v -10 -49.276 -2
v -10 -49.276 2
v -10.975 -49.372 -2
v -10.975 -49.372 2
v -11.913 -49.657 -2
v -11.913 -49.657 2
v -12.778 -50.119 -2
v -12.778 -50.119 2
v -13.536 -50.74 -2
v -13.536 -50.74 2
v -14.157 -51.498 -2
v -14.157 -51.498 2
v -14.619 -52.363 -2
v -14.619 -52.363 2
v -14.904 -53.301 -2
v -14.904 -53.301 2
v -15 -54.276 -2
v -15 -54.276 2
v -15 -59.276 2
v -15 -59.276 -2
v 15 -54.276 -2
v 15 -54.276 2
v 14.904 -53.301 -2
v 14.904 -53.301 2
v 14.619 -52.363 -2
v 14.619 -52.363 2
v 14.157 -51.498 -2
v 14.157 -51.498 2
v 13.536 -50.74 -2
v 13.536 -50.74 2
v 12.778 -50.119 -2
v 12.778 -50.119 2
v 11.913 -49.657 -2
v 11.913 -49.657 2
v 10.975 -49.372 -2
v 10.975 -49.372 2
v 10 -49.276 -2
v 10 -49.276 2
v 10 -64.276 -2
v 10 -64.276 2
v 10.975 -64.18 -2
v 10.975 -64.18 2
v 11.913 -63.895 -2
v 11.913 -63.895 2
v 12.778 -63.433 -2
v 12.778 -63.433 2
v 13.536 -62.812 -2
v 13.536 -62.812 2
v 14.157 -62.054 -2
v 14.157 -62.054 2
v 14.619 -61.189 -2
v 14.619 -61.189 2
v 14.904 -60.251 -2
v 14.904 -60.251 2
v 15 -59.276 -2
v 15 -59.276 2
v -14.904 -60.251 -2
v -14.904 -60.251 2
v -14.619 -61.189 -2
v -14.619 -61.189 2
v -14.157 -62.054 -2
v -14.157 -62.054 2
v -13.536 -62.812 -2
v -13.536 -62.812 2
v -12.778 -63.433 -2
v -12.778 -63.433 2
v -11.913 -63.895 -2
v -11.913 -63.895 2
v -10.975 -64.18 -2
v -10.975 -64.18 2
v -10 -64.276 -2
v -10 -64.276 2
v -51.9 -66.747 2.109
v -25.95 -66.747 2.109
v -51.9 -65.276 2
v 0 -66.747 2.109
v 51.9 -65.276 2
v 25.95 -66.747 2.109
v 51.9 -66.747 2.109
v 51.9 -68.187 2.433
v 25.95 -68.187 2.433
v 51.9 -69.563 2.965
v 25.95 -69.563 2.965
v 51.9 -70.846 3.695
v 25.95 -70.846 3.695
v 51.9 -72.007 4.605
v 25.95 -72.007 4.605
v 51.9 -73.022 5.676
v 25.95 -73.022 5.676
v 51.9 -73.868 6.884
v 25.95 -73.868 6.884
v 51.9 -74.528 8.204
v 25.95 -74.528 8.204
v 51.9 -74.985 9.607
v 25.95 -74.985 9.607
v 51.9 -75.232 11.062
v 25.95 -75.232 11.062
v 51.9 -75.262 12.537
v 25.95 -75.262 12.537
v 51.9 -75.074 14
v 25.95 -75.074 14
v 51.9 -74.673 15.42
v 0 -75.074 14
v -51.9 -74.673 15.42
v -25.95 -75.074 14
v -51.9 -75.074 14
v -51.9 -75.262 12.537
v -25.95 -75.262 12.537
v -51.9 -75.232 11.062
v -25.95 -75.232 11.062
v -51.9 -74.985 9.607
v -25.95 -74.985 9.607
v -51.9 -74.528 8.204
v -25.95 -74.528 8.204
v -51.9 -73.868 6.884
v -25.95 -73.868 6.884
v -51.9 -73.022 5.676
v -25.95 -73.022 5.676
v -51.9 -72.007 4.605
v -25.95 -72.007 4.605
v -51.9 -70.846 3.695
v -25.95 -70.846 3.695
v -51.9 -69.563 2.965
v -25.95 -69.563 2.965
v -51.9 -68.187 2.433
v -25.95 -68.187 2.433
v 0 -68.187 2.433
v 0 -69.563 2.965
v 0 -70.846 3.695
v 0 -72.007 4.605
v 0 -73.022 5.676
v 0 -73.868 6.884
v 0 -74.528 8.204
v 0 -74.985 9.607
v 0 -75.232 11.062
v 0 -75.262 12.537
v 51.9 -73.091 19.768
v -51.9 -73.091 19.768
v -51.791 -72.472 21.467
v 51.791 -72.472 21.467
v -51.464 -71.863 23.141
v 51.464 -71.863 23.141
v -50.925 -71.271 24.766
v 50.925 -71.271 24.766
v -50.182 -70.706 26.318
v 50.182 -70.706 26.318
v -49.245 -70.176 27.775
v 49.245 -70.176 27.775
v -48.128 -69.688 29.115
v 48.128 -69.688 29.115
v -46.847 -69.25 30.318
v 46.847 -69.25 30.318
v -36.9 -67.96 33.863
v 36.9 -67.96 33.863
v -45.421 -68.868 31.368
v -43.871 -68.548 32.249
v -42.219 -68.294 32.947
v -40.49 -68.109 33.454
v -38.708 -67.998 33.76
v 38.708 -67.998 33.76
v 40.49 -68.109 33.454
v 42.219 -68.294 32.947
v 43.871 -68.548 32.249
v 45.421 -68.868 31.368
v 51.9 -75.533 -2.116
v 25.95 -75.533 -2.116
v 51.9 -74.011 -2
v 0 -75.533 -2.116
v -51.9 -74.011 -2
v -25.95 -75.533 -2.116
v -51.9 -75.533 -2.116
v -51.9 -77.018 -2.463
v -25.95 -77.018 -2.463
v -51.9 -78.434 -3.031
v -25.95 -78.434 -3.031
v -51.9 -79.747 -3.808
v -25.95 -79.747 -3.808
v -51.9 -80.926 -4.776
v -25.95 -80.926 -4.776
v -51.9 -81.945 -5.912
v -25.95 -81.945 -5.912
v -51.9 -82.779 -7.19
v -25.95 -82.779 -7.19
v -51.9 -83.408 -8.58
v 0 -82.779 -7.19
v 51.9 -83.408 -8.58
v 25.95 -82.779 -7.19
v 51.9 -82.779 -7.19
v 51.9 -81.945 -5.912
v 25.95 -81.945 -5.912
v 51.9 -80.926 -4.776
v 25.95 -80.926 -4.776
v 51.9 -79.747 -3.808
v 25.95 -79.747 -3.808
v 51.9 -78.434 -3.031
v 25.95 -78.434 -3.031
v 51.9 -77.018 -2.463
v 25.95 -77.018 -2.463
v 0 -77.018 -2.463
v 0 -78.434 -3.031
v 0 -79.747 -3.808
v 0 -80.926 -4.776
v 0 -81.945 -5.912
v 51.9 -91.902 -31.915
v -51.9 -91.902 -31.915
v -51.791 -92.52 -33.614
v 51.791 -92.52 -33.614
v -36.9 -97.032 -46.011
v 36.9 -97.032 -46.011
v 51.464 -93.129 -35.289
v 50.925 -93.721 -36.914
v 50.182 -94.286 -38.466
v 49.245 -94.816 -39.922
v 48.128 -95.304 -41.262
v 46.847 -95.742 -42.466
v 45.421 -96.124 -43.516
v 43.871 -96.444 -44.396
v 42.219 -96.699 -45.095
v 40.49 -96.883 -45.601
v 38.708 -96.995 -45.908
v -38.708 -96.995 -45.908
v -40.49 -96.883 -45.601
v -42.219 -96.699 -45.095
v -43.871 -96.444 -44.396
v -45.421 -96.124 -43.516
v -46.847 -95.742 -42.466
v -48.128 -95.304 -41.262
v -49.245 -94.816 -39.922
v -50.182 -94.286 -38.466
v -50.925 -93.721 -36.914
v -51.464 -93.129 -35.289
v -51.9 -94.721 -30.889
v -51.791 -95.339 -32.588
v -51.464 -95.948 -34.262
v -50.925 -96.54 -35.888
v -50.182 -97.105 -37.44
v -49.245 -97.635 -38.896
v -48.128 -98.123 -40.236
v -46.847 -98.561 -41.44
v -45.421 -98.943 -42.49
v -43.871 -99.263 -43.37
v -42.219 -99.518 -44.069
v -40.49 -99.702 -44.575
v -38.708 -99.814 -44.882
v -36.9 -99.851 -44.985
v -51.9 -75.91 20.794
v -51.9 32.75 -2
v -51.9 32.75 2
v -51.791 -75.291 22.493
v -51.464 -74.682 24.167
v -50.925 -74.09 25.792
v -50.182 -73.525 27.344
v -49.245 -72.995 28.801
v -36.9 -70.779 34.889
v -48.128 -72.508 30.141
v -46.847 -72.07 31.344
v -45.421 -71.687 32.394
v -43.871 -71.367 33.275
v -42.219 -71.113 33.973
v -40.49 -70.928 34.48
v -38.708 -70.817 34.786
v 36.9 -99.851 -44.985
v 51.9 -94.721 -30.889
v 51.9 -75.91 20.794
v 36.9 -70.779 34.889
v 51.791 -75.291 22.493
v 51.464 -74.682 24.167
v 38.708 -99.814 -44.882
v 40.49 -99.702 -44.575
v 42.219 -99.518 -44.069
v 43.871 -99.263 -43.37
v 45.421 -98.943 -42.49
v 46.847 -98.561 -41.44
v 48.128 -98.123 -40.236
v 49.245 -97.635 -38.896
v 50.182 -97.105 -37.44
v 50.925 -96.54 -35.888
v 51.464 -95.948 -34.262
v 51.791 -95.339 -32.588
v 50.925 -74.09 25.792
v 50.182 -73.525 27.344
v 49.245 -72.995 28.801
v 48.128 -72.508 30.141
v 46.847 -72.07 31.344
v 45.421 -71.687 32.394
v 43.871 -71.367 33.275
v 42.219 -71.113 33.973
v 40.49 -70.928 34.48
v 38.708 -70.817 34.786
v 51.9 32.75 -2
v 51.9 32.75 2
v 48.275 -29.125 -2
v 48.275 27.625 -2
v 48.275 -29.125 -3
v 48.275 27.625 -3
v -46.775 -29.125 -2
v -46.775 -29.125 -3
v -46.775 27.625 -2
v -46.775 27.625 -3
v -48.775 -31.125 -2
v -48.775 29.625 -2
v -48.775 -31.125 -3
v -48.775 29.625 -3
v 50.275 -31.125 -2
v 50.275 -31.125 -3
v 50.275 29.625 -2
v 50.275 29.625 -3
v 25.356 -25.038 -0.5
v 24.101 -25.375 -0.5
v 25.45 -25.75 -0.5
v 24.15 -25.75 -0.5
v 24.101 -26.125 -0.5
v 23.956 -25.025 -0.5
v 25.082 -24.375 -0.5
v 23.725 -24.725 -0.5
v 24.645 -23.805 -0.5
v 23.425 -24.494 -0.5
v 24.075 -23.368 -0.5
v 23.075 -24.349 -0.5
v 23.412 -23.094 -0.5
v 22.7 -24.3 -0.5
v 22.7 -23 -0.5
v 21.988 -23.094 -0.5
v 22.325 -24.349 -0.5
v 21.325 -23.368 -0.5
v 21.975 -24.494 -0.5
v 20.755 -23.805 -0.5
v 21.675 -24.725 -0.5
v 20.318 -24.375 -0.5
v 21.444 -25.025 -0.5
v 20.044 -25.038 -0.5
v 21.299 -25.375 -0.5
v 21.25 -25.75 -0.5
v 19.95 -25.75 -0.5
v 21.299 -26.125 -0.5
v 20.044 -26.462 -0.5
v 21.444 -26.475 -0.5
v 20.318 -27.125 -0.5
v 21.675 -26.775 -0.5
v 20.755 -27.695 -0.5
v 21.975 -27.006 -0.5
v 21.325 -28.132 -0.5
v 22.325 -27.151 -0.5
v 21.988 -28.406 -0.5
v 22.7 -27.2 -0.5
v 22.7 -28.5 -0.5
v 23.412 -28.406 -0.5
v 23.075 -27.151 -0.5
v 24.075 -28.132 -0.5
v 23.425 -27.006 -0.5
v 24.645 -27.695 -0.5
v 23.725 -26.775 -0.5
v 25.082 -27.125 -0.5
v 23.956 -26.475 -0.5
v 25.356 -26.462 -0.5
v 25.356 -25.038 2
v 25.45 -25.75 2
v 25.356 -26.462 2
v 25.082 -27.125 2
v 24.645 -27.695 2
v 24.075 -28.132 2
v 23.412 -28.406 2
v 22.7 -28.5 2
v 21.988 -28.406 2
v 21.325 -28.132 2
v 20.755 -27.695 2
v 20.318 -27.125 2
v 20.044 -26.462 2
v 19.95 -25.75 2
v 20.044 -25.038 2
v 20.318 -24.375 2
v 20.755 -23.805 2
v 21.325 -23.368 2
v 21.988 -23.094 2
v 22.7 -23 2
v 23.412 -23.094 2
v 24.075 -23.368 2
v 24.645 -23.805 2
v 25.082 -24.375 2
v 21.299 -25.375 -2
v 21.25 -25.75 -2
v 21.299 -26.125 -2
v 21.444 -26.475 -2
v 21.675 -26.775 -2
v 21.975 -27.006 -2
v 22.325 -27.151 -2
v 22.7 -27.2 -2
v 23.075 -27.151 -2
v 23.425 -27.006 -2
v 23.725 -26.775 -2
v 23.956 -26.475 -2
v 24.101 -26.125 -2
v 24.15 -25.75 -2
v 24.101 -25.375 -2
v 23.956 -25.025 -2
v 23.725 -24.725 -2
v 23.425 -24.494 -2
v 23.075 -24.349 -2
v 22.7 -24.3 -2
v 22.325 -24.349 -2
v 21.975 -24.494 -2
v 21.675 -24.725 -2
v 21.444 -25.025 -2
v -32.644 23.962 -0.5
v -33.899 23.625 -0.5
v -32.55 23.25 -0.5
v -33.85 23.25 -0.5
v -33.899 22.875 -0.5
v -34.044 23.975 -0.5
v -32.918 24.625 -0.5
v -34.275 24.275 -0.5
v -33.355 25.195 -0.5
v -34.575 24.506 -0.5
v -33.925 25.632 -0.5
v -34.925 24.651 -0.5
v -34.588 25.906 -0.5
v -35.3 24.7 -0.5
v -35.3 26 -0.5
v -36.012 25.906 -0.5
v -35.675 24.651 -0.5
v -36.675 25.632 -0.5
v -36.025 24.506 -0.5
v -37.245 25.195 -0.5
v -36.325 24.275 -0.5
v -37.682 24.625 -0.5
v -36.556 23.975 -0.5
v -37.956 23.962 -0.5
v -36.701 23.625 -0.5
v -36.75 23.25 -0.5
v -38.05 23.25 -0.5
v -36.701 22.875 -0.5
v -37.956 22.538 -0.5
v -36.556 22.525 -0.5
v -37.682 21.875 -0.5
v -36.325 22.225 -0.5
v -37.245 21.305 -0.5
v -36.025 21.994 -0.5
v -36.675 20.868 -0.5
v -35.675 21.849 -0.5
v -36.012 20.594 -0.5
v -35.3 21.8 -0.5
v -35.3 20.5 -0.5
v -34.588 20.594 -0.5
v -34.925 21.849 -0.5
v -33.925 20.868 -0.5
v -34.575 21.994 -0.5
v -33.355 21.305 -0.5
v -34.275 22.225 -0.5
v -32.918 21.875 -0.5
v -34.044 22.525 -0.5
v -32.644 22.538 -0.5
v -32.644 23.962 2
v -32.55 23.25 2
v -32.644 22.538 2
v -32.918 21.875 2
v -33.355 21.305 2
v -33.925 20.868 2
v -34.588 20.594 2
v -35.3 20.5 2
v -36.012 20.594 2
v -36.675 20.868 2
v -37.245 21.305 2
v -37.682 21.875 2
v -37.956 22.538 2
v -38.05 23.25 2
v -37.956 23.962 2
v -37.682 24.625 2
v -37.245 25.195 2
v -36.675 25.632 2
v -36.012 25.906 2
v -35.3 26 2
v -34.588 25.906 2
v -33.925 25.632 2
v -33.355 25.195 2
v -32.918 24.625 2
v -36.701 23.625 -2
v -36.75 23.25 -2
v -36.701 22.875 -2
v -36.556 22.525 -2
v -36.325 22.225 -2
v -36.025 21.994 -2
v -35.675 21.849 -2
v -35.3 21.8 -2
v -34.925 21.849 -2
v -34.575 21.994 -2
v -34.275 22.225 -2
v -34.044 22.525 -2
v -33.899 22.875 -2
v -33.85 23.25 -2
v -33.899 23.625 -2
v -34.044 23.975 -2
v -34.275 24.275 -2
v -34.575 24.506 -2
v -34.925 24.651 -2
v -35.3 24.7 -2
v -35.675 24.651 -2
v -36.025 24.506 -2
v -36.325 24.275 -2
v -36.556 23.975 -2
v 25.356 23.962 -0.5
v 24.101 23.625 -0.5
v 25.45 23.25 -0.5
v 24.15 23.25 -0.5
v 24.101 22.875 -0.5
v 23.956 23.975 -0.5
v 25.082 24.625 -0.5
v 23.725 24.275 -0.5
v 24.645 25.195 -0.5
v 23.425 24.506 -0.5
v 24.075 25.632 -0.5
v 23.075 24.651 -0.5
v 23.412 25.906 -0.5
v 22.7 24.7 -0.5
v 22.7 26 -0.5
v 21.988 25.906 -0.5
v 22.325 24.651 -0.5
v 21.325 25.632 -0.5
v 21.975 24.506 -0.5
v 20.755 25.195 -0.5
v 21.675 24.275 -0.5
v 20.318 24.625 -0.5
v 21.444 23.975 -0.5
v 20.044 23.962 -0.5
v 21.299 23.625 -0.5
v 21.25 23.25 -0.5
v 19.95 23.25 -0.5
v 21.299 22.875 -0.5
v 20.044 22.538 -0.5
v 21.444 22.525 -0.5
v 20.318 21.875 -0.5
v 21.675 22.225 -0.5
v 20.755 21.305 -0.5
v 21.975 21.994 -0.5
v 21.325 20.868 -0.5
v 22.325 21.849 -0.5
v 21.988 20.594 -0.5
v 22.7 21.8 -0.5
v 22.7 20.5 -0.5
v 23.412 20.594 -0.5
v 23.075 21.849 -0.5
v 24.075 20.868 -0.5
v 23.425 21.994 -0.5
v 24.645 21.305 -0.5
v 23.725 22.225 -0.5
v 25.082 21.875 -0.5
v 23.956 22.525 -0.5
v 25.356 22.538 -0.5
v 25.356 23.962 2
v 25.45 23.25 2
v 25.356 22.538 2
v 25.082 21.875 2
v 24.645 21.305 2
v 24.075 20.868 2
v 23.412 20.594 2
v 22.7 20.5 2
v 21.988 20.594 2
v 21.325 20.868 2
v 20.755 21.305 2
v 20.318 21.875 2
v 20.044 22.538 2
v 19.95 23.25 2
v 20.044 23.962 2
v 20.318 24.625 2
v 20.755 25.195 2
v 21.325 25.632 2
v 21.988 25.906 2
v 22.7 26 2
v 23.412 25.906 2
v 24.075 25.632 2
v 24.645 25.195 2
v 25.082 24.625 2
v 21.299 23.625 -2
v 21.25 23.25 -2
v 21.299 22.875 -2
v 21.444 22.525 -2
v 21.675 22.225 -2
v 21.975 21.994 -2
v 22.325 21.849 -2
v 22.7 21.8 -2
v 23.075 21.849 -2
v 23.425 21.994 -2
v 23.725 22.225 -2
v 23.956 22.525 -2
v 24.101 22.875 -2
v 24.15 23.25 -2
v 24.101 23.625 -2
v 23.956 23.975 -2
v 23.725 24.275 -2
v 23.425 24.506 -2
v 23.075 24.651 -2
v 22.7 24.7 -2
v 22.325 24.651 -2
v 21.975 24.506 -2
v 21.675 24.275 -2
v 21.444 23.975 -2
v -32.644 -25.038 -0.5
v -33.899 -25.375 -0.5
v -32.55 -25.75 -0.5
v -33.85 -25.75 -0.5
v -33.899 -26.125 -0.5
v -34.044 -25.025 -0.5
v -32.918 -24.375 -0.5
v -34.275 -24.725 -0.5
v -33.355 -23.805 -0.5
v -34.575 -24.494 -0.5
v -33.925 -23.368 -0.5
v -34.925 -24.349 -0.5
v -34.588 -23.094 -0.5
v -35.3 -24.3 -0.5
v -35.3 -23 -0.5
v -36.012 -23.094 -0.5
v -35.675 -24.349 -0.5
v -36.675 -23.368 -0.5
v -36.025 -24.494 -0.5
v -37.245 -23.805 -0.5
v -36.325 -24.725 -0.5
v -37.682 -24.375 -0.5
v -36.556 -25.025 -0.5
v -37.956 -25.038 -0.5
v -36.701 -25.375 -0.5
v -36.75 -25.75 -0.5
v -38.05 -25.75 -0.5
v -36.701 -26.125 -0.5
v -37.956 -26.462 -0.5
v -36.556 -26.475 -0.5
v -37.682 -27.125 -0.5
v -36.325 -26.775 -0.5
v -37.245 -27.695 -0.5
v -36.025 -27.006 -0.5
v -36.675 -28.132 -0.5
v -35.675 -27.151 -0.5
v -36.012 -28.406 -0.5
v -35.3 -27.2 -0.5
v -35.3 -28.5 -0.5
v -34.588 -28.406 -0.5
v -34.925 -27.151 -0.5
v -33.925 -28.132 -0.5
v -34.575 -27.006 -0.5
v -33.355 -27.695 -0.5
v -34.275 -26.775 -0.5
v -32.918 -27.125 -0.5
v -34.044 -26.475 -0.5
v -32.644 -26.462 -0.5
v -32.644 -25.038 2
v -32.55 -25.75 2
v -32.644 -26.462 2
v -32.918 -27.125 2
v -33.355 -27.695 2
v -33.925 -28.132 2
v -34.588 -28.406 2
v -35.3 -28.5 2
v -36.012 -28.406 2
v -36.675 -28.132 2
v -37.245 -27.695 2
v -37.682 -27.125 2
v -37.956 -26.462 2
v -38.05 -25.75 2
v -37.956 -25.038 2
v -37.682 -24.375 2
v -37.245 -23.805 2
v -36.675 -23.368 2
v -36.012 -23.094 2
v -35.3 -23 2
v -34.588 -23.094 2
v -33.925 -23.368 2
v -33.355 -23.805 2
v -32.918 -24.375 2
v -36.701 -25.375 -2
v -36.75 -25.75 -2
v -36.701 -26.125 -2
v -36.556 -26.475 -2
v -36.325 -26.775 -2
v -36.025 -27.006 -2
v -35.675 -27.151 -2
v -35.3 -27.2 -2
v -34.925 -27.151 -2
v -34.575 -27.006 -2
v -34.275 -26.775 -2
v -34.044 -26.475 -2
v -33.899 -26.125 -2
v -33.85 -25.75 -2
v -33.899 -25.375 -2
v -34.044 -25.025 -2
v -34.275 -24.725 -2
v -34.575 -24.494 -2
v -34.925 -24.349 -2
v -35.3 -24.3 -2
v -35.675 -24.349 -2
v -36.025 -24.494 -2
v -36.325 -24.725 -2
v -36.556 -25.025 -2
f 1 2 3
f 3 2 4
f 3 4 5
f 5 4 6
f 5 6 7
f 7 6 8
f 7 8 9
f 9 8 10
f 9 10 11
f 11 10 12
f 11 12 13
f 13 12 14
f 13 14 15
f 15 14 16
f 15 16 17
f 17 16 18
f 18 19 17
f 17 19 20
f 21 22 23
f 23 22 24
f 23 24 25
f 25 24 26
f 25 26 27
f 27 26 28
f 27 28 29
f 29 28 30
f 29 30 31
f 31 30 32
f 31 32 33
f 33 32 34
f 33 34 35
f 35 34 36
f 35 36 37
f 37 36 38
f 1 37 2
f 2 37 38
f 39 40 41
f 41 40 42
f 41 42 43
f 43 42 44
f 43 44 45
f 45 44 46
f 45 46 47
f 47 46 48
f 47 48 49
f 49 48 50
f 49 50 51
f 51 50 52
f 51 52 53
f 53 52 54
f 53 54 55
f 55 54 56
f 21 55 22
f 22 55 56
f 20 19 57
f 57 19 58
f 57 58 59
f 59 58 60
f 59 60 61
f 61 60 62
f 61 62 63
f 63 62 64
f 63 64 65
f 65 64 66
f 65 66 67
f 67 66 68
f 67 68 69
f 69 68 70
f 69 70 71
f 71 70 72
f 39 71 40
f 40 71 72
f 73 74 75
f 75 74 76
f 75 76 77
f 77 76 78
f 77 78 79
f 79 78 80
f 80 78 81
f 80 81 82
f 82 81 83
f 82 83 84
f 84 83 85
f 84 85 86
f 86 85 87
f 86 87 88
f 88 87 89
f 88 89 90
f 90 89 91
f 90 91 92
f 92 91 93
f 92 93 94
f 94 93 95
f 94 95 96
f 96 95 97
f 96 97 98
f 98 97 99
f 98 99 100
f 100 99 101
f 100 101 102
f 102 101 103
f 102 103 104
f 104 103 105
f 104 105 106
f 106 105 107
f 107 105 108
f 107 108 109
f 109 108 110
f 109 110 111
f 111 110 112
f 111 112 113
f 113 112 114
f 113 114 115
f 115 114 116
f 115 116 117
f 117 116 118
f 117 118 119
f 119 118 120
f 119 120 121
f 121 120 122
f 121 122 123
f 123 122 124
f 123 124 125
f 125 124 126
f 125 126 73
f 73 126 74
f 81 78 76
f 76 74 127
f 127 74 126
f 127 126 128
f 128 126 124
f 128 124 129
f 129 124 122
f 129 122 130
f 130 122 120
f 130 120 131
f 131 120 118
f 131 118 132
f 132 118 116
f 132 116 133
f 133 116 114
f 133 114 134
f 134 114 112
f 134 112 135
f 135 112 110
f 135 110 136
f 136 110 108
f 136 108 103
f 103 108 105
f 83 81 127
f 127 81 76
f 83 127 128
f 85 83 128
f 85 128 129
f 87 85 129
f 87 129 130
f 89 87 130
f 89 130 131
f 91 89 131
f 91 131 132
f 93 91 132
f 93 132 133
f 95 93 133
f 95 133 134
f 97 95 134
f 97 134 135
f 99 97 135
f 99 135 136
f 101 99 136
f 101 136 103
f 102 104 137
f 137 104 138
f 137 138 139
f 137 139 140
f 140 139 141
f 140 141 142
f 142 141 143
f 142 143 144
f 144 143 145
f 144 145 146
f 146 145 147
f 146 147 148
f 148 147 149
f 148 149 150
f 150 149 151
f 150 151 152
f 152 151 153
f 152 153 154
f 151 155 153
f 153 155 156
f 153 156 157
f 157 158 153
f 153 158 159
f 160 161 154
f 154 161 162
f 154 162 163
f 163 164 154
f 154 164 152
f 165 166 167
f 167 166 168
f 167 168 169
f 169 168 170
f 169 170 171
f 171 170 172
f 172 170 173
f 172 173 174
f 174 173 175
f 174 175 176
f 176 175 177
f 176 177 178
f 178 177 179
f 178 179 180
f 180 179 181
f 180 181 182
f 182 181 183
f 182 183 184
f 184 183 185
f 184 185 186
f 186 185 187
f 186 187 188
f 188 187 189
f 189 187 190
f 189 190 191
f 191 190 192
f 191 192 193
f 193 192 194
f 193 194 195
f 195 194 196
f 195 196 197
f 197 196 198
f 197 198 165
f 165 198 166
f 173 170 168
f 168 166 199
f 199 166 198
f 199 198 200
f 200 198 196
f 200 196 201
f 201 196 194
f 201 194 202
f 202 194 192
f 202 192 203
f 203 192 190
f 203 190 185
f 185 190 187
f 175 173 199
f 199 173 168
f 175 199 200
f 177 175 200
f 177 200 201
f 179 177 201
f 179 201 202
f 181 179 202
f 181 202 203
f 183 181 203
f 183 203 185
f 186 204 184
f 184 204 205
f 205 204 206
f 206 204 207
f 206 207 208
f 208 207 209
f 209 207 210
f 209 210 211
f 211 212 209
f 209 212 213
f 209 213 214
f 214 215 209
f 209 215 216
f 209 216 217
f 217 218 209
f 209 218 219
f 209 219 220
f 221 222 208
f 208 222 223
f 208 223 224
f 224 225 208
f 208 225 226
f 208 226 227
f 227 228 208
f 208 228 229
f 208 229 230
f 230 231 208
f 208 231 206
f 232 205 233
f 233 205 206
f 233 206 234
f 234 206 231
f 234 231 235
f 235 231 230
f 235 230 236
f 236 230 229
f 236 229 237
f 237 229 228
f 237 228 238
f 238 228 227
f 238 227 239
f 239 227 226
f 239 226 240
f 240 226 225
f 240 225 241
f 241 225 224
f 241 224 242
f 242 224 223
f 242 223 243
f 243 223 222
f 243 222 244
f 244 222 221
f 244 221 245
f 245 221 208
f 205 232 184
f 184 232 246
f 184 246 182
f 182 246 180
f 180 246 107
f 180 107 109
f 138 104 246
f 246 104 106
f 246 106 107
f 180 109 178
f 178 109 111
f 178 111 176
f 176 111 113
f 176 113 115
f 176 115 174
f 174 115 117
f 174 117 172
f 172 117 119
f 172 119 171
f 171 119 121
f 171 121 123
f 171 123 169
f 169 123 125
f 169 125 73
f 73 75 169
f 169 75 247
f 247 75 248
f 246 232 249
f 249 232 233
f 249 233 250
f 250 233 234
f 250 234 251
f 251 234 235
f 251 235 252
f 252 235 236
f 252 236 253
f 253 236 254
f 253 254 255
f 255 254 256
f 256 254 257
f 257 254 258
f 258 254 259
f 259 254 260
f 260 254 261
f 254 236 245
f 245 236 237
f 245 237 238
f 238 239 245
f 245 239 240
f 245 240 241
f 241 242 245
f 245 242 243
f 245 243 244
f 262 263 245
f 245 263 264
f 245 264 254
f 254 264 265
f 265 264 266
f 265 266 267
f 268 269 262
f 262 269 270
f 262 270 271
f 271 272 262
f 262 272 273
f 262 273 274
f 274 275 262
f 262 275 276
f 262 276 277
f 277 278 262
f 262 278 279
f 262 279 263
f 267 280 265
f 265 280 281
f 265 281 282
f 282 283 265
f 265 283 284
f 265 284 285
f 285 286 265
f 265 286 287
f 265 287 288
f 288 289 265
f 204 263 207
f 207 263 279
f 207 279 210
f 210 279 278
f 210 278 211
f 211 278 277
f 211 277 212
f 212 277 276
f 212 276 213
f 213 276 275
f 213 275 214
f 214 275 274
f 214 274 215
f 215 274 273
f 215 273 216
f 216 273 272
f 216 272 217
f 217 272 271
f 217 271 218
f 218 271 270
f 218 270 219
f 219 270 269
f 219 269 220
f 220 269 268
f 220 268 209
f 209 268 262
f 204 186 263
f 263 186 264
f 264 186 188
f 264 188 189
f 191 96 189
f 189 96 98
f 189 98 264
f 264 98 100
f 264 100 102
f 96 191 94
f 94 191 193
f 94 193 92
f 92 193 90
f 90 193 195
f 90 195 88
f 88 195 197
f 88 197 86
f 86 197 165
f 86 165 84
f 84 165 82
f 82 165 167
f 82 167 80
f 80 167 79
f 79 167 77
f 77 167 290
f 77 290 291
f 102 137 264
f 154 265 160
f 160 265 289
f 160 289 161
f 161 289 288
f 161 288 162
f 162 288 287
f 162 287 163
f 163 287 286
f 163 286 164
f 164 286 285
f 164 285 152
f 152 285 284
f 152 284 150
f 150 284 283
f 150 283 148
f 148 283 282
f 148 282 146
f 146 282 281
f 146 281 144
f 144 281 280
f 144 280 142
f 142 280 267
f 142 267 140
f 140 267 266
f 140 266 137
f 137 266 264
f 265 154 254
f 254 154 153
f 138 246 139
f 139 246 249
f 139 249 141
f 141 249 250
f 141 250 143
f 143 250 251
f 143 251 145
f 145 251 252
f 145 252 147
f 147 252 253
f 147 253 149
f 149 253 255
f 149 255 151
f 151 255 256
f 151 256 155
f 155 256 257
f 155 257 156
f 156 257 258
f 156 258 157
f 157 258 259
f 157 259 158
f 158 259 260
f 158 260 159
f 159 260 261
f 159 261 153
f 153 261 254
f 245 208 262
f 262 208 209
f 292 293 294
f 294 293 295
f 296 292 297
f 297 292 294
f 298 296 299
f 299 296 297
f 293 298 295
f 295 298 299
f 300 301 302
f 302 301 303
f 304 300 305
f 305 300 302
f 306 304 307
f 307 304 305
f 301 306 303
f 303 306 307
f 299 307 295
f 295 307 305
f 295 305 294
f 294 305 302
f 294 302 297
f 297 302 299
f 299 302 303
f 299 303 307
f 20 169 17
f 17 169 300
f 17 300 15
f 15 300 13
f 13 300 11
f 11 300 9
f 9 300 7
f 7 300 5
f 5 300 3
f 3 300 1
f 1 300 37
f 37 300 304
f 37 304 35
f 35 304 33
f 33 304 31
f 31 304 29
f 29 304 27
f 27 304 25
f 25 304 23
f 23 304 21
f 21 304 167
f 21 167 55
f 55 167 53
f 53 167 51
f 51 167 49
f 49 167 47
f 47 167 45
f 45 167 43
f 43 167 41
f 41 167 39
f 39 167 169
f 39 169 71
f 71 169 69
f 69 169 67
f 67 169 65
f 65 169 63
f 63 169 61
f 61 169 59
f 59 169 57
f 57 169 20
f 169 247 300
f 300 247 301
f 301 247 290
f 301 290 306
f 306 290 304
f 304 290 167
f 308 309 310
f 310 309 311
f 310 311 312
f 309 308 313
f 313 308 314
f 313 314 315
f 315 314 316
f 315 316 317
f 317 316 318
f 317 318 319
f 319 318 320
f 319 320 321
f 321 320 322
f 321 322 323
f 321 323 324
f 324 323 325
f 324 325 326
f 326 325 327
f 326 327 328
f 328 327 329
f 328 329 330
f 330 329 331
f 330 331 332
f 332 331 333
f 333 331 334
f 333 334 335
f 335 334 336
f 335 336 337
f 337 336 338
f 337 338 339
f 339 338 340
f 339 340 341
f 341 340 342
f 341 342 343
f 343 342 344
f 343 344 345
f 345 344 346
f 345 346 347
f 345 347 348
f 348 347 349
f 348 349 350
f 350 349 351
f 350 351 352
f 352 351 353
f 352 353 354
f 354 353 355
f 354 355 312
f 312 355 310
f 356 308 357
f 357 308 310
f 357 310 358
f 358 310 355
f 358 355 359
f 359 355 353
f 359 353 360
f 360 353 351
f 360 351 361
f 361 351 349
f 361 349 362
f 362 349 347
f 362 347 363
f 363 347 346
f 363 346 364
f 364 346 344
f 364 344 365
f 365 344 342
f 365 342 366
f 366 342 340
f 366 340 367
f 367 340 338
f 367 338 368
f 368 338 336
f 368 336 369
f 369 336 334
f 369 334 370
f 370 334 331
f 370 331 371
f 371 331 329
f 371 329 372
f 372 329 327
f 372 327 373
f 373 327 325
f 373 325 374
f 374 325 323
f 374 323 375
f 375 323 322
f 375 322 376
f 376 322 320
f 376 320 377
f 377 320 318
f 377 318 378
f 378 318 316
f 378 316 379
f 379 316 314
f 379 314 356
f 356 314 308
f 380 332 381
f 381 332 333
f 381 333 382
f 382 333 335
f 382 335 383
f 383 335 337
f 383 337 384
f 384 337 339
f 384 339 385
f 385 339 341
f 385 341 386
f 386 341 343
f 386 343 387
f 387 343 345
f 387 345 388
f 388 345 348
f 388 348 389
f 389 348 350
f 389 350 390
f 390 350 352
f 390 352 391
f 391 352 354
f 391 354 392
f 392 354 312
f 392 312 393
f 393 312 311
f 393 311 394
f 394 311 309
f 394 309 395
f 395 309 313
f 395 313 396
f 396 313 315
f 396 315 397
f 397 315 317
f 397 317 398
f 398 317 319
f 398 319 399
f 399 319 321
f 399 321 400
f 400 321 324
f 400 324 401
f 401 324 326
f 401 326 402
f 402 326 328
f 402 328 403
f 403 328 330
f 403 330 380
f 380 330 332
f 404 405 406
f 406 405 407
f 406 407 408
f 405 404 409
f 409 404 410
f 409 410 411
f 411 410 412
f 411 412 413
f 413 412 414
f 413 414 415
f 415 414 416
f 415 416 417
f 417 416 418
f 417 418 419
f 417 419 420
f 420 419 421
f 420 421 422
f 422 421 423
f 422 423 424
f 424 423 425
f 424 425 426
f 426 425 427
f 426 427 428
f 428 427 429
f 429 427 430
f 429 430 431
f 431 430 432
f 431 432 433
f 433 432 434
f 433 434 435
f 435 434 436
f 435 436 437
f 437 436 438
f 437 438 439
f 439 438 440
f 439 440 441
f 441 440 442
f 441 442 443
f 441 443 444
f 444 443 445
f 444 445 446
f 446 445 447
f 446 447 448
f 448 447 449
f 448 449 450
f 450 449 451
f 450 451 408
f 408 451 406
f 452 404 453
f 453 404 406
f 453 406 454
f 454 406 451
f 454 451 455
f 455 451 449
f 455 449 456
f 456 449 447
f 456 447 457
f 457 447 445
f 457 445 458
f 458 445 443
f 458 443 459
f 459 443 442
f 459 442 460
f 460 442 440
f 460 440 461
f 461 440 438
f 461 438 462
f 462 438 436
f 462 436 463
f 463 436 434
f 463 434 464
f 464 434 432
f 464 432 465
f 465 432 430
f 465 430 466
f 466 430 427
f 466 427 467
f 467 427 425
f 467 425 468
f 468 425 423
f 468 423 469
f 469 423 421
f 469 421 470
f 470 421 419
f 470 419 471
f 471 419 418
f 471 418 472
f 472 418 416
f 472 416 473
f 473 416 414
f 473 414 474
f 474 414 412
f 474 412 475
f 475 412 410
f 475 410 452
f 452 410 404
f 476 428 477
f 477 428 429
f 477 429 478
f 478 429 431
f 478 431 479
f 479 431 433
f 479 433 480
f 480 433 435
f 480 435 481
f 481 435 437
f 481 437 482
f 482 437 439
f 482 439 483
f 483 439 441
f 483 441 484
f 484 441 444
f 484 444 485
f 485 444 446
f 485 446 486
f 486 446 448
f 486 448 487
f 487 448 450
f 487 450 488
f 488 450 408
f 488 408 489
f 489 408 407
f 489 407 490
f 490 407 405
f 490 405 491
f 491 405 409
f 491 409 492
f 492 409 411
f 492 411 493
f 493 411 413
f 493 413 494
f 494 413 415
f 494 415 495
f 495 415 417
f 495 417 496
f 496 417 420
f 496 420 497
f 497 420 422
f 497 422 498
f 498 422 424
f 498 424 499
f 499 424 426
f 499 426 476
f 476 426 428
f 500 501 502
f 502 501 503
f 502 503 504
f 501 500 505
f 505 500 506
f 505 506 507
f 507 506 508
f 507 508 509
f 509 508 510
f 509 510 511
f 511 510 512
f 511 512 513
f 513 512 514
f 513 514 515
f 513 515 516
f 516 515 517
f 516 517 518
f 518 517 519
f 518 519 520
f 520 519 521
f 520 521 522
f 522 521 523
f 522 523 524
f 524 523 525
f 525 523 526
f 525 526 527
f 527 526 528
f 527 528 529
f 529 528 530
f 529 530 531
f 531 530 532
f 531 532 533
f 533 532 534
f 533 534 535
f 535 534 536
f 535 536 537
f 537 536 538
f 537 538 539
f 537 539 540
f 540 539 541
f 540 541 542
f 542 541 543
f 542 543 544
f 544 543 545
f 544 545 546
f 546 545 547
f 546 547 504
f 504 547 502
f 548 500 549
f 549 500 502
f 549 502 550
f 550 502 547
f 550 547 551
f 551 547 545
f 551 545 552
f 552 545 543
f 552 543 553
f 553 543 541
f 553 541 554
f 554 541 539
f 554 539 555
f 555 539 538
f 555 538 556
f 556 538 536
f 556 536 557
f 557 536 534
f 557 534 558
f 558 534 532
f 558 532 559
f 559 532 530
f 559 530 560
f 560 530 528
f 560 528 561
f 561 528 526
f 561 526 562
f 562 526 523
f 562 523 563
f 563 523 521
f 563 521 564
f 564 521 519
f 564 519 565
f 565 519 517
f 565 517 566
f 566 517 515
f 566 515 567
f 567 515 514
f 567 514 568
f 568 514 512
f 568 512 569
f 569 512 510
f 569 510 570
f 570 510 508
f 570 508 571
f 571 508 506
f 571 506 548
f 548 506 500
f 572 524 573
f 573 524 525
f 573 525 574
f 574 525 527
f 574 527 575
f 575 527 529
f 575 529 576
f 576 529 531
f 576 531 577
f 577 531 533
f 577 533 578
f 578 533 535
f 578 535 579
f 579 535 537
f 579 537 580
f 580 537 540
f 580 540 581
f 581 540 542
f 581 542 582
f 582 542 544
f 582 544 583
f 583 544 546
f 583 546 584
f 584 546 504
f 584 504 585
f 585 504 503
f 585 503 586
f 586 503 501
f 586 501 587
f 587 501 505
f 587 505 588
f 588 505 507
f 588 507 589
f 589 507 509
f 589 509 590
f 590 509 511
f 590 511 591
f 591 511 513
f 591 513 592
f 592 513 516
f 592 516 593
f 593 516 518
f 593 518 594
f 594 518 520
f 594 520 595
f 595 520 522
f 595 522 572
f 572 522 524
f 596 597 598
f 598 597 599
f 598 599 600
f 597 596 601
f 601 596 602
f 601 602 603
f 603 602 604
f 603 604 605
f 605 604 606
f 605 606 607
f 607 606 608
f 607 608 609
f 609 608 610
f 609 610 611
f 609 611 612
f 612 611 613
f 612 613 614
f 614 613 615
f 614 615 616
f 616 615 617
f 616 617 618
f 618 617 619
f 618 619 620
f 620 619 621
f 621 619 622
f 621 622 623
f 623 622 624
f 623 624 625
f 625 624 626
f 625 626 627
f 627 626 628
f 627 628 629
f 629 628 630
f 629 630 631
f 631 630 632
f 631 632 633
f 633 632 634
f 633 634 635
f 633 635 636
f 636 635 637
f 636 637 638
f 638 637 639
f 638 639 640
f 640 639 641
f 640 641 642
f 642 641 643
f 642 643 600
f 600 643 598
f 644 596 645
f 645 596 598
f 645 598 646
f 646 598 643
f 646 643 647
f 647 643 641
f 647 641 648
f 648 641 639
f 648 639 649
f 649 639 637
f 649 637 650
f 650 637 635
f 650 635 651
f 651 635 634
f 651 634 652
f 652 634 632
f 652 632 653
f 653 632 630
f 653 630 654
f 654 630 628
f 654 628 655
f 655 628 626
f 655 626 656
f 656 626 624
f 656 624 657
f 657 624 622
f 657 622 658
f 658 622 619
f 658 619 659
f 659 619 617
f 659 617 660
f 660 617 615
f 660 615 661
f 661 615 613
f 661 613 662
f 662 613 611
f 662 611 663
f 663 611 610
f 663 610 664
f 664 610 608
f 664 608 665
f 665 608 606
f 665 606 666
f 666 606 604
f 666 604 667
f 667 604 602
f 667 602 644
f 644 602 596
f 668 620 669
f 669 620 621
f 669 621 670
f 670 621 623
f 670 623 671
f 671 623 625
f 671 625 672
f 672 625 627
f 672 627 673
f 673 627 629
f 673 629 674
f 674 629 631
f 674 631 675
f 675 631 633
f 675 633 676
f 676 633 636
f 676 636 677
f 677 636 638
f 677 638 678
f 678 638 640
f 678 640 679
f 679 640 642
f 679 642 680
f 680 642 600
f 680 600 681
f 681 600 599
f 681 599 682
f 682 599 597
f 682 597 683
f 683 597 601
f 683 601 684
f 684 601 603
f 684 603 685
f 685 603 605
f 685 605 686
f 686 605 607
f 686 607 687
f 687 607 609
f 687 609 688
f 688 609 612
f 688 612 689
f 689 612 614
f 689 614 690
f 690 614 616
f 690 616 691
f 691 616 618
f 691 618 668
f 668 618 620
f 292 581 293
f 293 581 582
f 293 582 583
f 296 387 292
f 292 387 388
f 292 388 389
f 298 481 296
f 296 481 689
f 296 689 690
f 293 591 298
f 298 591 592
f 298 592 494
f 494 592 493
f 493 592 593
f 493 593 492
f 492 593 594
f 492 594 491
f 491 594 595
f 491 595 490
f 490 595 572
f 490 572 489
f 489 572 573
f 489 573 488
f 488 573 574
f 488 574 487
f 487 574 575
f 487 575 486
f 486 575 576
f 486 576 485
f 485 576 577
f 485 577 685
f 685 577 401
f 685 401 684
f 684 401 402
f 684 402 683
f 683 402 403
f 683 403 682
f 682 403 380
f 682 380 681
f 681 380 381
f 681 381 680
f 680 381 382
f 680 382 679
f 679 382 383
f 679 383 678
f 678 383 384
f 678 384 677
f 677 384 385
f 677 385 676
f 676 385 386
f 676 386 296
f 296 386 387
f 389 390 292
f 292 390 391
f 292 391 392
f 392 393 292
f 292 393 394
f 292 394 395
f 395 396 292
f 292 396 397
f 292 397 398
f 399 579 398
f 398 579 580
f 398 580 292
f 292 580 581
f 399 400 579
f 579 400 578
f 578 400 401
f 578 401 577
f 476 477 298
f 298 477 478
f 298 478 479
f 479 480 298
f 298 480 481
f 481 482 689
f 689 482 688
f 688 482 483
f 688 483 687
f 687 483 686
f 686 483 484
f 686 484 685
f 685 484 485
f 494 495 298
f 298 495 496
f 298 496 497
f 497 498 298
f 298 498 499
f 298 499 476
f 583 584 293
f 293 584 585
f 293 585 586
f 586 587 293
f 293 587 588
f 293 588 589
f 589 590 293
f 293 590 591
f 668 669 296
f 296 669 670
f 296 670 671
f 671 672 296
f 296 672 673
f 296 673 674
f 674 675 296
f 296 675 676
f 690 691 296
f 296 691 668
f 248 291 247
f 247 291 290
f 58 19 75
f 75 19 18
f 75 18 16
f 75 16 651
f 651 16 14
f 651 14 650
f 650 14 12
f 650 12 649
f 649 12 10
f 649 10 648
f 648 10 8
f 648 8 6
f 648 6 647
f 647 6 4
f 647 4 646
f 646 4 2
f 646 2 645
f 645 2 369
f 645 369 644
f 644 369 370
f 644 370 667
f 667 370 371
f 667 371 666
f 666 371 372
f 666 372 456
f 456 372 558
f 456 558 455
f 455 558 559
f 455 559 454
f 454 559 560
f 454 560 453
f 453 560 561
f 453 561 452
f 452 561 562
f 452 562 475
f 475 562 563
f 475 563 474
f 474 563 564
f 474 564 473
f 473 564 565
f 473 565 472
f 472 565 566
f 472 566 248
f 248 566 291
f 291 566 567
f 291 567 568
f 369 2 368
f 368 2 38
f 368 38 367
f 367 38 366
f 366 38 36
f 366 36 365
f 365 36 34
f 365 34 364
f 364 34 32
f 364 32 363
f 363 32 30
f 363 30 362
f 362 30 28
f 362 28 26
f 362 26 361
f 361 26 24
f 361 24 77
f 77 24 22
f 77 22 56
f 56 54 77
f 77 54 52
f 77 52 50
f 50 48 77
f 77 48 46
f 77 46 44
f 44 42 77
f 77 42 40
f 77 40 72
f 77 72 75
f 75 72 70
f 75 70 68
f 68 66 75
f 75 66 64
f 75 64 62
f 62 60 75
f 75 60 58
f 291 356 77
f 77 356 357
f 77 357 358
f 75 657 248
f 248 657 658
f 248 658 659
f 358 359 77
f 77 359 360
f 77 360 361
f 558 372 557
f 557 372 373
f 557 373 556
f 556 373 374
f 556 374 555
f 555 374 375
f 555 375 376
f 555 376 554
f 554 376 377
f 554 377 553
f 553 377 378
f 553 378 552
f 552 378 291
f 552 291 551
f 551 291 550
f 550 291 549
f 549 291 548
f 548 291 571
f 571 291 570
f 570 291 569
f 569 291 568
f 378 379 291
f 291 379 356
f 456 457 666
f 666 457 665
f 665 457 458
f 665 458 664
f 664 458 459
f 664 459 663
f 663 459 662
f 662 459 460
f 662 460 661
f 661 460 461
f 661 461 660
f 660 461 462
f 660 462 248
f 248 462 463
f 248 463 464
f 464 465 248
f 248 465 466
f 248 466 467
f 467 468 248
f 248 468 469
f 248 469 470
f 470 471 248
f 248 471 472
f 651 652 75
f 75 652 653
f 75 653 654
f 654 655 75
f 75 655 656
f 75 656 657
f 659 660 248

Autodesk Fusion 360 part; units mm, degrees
sketch "Sketch1" plane through (0, 0, 0) normal (0, 0, 1) x (1, 0, 0)
  line L0 (-51.9, 32.75) -> (51.9, 32.75)
  line L1 (51.9, 32.75) -> (51.9, -32.75)
  line L2 (51.9, -32.75) -> (-51.9, -32.75)
  line L3 (-51.9, -32.75) -> (-51.9, 32.75)
  point P0 (0, 32.75)
  point P1 (51.9, 0)
  dimension "d1" = 103.8
  dimension "d2" = 65.5
extrude "Extrude1" add sketch "Sketch1" along normal mid plane 4
sketch "Sketch2" plane through (0, 0, 2) normal (0, 0, 1) x (-1, 0, 0)
  line L0 (51.9, 32.75) -> (-51.9, 32.75)
  line L1 (-51.9, 32.75) -> (-51.9, -32.75)
  line L2 (-51.9, -32.75) -> (51.9, -32.75)
  line L3 (51.9, -32.75) -> (51.9, 32.75)
  point P0 (35.3, -23.25)
  point P1 (-22.7, -23.25)
  point P2 (35.3, 25.75)
  point P3 (-22.7, 25.75)
  dimension "d5" = 9.5
  dimension "d6" = 16.6
  dimension "d7" = 58
  dimension "d8" = 49
hole "Hole1" at (-35.3, 23.25, 2) at (22.7, 23.25, 2) at (22.7, -25.75, 2) at (-35.3, -25.75, 2) direction (0, 0, -1) diameter 2.9 depth 12 tip angle 118 counterbore diameter 5.5 counterbore depth 2.5
sketch "Sketch3" plane through (0, 0, -2) normal (0, 0, -1) x (1, 0, 0)
  circle A0 centre (22.7, 25.75) radius 1.45
  circle A1 centre (-35.3, -23.25) radius 1.45
  circle A2 centre (22.7, -23.25) radius 1.45
  circle A3 centre (-35.3, 25.75) radius 1.45
  line L0 (51.9, 32.75) -> (-51.9, 32.75)
  line L1 (-51.9, 32.75) -> (-51.9, -32.75)
  line L2 (-51.9, -32.75) -> (51.9, -32.75)
  line L3 (51.9, -32.75) -> (51.9, 32.75)
  line L4 (-48.775, 31.125) -> (50.275, 31.125)
  line L5 (50.275, 31.125) -> (50.275, -29.625)
  line L6 (50.275, -29.625) -> (-48.775, -29.625)
  line L7 (-48.775, -29.625) -> (-48.775, 31.125)
  line L8 (-46.775, 29.125) -> (48.275, 29.125)
  line L9 (48.275, 29.125) -> (48.275, -27.625)
  line L10 (48.275, -27.625) -> (-46.775, -27.625)
  line L11 (-46.775, -27.625) -> (-46.775, 29.125)
  point P0 (0.75, 31.125)
  point P1 (0.75, 29.125)
  point P2 (50.275, 0.75)
  point P3 (48.275, 0.75)
  dimension "d14" = 2
  dimension "d15" = 2
  dimension "d16" = 99.05
  dimension "d17" = 60.75
  dimension "d41" = 3.125
  dimension "d42" = 1.625
extrude "Extrude2" add sketch "Sketch3" along normal blind 1 contours L4 L5 L6 L7
sketch "Sketch5" plane through (0, 0, 2) normal (0, 0, 1) x (-1, 0, 0)
  circle A0 centre (-22.7, 25.75) radius 2.75
  circle A1 centre (35.3, -23.25) radius 2.75
  circle A2 centre (-22.7, -23.25) radius 2.75
  circle A3 centre (35.3, 25.75) radius 2.75
  line L0 (51.9, 32.75) -> (-51.9, 32.75)
  line L1 (-51.9, 32.75) -> (-51.9, -32.75)
  line L2 (-51.9, -32.75) -> (51.9, -32.75)
  line L3 (51.9, -32.75) -> (51.9, 32.75)
  line L4 (51.9, 32.75) -> (-51.9, 32.75)
  line L5 (-51.9, 32.75) -> (-51.9, 82.75)
  line L6 (-51.9, 82.75) -> (51.9, 82.75)
  line L7 (51.9, 82.75) -> (51.9, 32.75)
  dimension "d20" = 50
extrude "Extrude3" add sketch "Sketch5" against normal up to surface (4 mm away) contours L0 L4 L5 L6 L7
sketch "Sketch7" plane through (-51.9, 0, 0) normal (-1, 0, 0) x (0, -1, 0)
  line L0 (82.75, 2) -> (-32.75, 2)
  line L1 (-32.75, 2) -> (-32.75, -2)
  line L2 (-32.75, -2) -> (82.75, -2)
  line L3 (82.75, -2) -> (82.75, 2)
  line L4 (82.75, 2) -> (99.851, -44.9846)
  line L5 (99.851, -44.9846) -> (97.0319, -46.0107)
  line L6 (97.0319, -46.0107) -> (81.0133, -2)
  line L7 (82.75, 2) -> (70.7793, 34.8892)
  line L8 (70.7793, 34.8892) -> (67.9602, 33.8632)
  line L9 (67.9602, 33.8632) -> (81.0133, -2)
  dimension "d23" = 70
  dimension "d24" = 50
  dimension "d27" = 3
  dimension "d28" = 35
extrude "Extrude4" add sketch "Sketch7" against normal up to surface (103.8 mm away) contours L2 L3 L4 L5 L6 | L0 L7 L8 L9
fillet "Fillet1" radius 15 4 edges at (-51.9, -69.3698, 34.3762) (51.9, -69.3698, 34.3762) (51.9, -98.4415, -45.4977) (-51.9, -98.4415, -45.4977)
fillet "Fillet2" radius 10 2 edges at (0, -81.0133, -2) (0, -79.5575, 2)
sketch "Sketch8" plane through (0, 0, 2) normal (0, 0, 1) x (-1, 0, 0)
  line L0 (51.9, 65.276) -> (-51.9, 65.276)
  line L1 (-51.9, 65.276) -> (-51.9, -32.75)
  line L2 (-51.9, -32.75) -> (51.9, -32.75)
  line L3 (51.9, -32.75) -> (51.9, 65.276)
  circle A0 centre (-22.7, 25.75) radius 2.75
  circle A1 centre (35.3, -23.25) radius 2.75
  circle A2 centre (-22.7, -23.25) radius 2.75
  circle A3 centre (35.3, 25.75) radius 2.75
  line L4 (15, 49.276) -> (-15, 49.276)
  line L5 (-15, 49.276) -> (-15, 64.276)
  line L6 (-15, 64.276) -> (15, 64.276)
  line L7 (15, 64.276) -> (15, 49.276)
  point P0 (0, 49.276)
  dimension "d33" = 1
  dimension "d34" = 15
  dimension "d35" = 30
extrude "Extrude5" cut sketch "Sketch8" against normal up to surface (4 mm away) contours L4 L5 L6 L7
fillet "Fillet3" radius 5 4 edges at (-15, -64.276, 0) (15, -64.276, 0) (15, -49.276, 0) (-15, -49.276, 0)
equation "d15 = d14"
equation "d16 = 99.30 mm - 0.25 mm"
equation "d17 = 61.00 mm - 0.25 mm"
equation "d41 = 3 mm + ( 0.25 / 2 ) * 1 mm"
equation "d42 = 1.5 mm + ( 0.25 / 2 ) * 1 mm"
